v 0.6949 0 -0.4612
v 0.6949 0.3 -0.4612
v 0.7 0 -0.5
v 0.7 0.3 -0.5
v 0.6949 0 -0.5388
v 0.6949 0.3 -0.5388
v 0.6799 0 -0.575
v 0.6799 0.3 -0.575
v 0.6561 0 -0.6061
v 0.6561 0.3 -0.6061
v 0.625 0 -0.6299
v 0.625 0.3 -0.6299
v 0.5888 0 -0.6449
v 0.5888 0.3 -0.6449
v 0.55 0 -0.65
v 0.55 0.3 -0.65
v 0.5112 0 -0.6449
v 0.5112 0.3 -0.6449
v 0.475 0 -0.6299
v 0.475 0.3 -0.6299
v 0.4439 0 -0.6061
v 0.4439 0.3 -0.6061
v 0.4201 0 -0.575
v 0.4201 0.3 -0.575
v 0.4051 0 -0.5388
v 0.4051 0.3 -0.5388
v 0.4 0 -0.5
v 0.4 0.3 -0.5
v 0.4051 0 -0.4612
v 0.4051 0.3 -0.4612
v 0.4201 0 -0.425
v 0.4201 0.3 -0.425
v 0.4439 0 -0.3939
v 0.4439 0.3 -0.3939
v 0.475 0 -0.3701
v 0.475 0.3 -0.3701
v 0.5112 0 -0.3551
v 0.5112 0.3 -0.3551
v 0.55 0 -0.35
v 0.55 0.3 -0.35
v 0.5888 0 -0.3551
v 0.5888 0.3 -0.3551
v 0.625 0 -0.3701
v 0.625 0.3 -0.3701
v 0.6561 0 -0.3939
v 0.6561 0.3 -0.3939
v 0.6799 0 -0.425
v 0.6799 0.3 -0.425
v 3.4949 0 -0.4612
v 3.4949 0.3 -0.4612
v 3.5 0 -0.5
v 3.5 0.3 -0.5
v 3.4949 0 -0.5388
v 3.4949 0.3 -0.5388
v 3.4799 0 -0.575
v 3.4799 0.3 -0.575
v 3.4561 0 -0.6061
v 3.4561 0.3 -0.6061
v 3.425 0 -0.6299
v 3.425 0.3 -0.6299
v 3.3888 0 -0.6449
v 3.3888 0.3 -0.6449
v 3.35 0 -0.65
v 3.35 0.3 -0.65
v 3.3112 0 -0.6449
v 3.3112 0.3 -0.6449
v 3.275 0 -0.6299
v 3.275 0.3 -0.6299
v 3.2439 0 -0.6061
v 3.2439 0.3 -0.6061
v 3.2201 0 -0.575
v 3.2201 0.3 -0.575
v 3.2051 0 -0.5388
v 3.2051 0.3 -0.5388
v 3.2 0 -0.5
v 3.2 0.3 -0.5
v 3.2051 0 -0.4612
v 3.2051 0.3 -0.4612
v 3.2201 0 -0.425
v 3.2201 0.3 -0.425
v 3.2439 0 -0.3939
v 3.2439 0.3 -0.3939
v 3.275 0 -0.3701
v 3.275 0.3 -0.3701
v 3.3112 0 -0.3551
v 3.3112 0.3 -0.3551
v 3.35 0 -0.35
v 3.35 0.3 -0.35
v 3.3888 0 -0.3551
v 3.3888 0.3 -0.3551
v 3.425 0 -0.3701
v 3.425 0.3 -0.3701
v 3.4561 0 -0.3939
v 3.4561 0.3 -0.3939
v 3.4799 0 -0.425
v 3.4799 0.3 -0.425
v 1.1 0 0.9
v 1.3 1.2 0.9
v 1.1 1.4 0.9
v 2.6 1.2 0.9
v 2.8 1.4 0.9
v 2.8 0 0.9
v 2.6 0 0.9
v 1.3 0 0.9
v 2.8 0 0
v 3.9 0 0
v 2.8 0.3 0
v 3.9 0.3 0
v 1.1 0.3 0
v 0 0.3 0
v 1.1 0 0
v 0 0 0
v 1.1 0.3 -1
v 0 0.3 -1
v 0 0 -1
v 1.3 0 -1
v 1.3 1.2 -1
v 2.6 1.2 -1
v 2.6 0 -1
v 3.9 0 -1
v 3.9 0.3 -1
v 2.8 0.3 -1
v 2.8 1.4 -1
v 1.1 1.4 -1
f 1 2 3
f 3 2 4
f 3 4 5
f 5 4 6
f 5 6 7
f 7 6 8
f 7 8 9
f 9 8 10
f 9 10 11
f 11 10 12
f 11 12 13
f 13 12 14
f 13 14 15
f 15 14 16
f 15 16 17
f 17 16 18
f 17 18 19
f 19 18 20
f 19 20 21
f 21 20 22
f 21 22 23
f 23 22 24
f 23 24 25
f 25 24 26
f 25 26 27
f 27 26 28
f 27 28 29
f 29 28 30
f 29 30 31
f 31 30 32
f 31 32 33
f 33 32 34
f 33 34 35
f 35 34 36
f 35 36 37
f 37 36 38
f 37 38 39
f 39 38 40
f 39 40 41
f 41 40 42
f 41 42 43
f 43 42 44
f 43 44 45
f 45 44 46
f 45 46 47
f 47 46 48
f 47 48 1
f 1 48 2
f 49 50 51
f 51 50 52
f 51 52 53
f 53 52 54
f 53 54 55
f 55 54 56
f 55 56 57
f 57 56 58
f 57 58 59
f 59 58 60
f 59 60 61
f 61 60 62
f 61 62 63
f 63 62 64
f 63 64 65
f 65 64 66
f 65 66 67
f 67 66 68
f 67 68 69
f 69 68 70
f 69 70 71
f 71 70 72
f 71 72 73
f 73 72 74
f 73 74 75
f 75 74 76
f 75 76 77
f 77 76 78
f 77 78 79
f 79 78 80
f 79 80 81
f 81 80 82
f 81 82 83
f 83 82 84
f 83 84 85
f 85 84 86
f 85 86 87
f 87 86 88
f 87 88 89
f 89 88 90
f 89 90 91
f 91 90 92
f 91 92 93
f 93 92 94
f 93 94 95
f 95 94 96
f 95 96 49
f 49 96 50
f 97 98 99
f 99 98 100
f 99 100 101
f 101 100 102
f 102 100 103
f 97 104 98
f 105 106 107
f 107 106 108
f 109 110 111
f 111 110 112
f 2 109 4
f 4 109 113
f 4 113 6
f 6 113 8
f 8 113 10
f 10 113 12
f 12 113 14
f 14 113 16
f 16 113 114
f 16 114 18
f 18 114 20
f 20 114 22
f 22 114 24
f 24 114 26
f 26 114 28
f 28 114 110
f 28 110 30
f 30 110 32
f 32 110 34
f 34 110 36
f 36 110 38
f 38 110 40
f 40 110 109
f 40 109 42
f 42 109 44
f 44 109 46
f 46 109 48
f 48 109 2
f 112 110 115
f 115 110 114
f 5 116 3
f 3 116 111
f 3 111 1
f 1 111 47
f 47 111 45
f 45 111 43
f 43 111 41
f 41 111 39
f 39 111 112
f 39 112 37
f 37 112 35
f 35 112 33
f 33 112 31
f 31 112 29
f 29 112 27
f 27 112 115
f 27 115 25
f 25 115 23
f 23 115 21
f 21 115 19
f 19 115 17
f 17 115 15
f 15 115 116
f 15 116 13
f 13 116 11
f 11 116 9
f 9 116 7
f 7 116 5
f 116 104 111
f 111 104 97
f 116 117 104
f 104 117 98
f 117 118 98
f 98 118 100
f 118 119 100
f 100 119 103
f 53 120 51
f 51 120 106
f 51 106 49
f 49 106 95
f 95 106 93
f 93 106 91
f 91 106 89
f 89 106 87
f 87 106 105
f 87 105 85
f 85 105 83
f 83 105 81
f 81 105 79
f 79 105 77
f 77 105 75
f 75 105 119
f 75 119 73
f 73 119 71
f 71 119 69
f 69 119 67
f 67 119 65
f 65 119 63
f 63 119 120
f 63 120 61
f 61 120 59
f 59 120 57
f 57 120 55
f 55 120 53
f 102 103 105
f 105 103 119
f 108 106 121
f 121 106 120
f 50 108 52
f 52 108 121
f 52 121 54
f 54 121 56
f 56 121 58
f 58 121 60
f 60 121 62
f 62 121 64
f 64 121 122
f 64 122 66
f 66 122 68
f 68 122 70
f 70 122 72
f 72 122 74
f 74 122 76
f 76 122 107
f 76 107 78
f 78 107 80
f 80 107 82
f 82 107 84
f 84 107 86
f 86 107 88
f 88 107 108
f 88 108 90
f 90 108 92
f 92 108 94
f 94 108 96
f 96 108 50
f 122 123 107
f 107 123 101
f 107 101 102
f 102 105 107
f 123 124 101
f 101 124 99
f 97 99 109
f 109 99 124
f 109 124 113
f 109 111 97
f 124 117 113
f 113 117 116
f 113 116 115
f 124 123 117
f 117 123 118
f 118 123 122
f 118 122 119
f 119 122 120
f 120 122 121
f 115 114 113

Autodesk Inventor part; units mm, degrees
ref_plane "YZ Plane" through (0, 0, 0) normal (1, 0, 0) x (0, 1, 0)
ref_plane "XZ Plane" through (0, 0, 0) normal (0, 1, 0) x (-1, 0, 0)
ref_plane "XY Plane" through (0, 0, 0) normal (0, 0, 1) x (1, 0, 0)
sketch "Boceto1" plane through (0, 0, 0) normal (0, 0, 1) x (1, 0, 0)
  line L0 (2.8, 1.4) -> (2.8, 0.3)
  line L1 (2.6, 0) -> (3.9, 0)
  line L2 (3.9, 0) -> (3.9, 0.3)
  line L3 (3.9, 0.3) -> (2.8, 0.3)
  line L4 (0, 0) -> (0, 0.3)
  line L5 (0, 0.3) -> (1.1, 0.3)
  line L6 (0, 0) -> (1.3, 0)
  line L7 (1.3, 0) -> (1.3, 1.2)
  line L8 (2.6, 1.2) -> (2.6, 0)
  line L9 (1.1, 1.4) -> (1.1, 0.3)
  line L10 (1.1, 1.4) -> (2.8, 1.4)
  line L11 (1.3, 1.2) -> (2.6, 1.2)
extrude "Extrusión1" add sketch "Boceto1" against normal blind 1
sketch "Boceto2" plane through (0, 0, 0) normal (0, 0, 1) x (1, 0, 0)
  line L0 (1.1, 1.2) -> (2.8, 1.2) projected
  line L1 (1.1, 1.4) -> (1.1, 0.3) projected
  line L2 (2.8, 0.3) -> (2.8, 1.4) projected
  line L3 (1.3, 0) -> (0, 0) projected
  line L4 (1.1, 0) -> (1.3, 0)
  line L5 (1.3, 1.2) -> (1.3, 0) projected
  line L6 (1.3, 0) -> (1.3, 1.2)
  line L7 (2.6, 0) -> (2.6, 1.2) projected
  line L8 (1.3, 1.2) -> (2.6, 1.2)
  line L9 (2.6, 1.2) -> (2.6, 0)
  line L10 (2.6, 0) -> (2.8, 0)
  line L11 (2.8, 1.4) -> (2.8, 0.3) projected
  line L12 (2.8, 0) -> (2.8, 1.4)
  line L13 (1.1, 1.2) -> (2.8, 1.2) projected
  line L14 (2.8, 1.4) -> (1.1, 1.4)
  line L15 (1.1, 1.4) -> (1.1, 0)
extrude "Extrusión2" add sketch "Boceto2" along normal blind 0.9
sketch "Boceto3" plane through (2.8, 0.3, 0) normal (0, 1, 0) x (1, 0, 0)
  line L0 (-1.7, 0) -> (-1.7, 1.9)
  line L1 (-1.7, 1.9) -> (0, 1.9)
  line L2 (0, 1.9) -> (0, 0)
  line L3 (0, 0) -> (-1.7, 0)
  line L4 (-1.7, 0) -> (-2.8, 0)
  line L5 (-2.8, 0) -> (-2.8, 1)
  line L6 (-2.8, 1) -> (-1.7, 1)
  line L7 (0, 0) -> (1.1, 0)
  line L8 (1.1, 0) -> (1.1, 1)
  line L9 (1.1, 1) -> (0, 1)
  circle A0 centre (-2.25, 0.5) radius 0.15
  circle A1 centre (0.55, 0.5) radius 0.15
  line L10 (1.1, 0) -> (0, 0) projected
  line L11 (1.1, 0) -> (1.1, 1) projected
  line L12 (0, 1) -> (1.1, 1) projected
  line L13 (0, 0) -> (0, 1) projected
  point P0 (-2.8, 0)
extrude "Extrusión3" cut sketch "Boceto3" against normal blind 0.9 contours A0 | A1
properties part number "learnbotEncajeMotor"
